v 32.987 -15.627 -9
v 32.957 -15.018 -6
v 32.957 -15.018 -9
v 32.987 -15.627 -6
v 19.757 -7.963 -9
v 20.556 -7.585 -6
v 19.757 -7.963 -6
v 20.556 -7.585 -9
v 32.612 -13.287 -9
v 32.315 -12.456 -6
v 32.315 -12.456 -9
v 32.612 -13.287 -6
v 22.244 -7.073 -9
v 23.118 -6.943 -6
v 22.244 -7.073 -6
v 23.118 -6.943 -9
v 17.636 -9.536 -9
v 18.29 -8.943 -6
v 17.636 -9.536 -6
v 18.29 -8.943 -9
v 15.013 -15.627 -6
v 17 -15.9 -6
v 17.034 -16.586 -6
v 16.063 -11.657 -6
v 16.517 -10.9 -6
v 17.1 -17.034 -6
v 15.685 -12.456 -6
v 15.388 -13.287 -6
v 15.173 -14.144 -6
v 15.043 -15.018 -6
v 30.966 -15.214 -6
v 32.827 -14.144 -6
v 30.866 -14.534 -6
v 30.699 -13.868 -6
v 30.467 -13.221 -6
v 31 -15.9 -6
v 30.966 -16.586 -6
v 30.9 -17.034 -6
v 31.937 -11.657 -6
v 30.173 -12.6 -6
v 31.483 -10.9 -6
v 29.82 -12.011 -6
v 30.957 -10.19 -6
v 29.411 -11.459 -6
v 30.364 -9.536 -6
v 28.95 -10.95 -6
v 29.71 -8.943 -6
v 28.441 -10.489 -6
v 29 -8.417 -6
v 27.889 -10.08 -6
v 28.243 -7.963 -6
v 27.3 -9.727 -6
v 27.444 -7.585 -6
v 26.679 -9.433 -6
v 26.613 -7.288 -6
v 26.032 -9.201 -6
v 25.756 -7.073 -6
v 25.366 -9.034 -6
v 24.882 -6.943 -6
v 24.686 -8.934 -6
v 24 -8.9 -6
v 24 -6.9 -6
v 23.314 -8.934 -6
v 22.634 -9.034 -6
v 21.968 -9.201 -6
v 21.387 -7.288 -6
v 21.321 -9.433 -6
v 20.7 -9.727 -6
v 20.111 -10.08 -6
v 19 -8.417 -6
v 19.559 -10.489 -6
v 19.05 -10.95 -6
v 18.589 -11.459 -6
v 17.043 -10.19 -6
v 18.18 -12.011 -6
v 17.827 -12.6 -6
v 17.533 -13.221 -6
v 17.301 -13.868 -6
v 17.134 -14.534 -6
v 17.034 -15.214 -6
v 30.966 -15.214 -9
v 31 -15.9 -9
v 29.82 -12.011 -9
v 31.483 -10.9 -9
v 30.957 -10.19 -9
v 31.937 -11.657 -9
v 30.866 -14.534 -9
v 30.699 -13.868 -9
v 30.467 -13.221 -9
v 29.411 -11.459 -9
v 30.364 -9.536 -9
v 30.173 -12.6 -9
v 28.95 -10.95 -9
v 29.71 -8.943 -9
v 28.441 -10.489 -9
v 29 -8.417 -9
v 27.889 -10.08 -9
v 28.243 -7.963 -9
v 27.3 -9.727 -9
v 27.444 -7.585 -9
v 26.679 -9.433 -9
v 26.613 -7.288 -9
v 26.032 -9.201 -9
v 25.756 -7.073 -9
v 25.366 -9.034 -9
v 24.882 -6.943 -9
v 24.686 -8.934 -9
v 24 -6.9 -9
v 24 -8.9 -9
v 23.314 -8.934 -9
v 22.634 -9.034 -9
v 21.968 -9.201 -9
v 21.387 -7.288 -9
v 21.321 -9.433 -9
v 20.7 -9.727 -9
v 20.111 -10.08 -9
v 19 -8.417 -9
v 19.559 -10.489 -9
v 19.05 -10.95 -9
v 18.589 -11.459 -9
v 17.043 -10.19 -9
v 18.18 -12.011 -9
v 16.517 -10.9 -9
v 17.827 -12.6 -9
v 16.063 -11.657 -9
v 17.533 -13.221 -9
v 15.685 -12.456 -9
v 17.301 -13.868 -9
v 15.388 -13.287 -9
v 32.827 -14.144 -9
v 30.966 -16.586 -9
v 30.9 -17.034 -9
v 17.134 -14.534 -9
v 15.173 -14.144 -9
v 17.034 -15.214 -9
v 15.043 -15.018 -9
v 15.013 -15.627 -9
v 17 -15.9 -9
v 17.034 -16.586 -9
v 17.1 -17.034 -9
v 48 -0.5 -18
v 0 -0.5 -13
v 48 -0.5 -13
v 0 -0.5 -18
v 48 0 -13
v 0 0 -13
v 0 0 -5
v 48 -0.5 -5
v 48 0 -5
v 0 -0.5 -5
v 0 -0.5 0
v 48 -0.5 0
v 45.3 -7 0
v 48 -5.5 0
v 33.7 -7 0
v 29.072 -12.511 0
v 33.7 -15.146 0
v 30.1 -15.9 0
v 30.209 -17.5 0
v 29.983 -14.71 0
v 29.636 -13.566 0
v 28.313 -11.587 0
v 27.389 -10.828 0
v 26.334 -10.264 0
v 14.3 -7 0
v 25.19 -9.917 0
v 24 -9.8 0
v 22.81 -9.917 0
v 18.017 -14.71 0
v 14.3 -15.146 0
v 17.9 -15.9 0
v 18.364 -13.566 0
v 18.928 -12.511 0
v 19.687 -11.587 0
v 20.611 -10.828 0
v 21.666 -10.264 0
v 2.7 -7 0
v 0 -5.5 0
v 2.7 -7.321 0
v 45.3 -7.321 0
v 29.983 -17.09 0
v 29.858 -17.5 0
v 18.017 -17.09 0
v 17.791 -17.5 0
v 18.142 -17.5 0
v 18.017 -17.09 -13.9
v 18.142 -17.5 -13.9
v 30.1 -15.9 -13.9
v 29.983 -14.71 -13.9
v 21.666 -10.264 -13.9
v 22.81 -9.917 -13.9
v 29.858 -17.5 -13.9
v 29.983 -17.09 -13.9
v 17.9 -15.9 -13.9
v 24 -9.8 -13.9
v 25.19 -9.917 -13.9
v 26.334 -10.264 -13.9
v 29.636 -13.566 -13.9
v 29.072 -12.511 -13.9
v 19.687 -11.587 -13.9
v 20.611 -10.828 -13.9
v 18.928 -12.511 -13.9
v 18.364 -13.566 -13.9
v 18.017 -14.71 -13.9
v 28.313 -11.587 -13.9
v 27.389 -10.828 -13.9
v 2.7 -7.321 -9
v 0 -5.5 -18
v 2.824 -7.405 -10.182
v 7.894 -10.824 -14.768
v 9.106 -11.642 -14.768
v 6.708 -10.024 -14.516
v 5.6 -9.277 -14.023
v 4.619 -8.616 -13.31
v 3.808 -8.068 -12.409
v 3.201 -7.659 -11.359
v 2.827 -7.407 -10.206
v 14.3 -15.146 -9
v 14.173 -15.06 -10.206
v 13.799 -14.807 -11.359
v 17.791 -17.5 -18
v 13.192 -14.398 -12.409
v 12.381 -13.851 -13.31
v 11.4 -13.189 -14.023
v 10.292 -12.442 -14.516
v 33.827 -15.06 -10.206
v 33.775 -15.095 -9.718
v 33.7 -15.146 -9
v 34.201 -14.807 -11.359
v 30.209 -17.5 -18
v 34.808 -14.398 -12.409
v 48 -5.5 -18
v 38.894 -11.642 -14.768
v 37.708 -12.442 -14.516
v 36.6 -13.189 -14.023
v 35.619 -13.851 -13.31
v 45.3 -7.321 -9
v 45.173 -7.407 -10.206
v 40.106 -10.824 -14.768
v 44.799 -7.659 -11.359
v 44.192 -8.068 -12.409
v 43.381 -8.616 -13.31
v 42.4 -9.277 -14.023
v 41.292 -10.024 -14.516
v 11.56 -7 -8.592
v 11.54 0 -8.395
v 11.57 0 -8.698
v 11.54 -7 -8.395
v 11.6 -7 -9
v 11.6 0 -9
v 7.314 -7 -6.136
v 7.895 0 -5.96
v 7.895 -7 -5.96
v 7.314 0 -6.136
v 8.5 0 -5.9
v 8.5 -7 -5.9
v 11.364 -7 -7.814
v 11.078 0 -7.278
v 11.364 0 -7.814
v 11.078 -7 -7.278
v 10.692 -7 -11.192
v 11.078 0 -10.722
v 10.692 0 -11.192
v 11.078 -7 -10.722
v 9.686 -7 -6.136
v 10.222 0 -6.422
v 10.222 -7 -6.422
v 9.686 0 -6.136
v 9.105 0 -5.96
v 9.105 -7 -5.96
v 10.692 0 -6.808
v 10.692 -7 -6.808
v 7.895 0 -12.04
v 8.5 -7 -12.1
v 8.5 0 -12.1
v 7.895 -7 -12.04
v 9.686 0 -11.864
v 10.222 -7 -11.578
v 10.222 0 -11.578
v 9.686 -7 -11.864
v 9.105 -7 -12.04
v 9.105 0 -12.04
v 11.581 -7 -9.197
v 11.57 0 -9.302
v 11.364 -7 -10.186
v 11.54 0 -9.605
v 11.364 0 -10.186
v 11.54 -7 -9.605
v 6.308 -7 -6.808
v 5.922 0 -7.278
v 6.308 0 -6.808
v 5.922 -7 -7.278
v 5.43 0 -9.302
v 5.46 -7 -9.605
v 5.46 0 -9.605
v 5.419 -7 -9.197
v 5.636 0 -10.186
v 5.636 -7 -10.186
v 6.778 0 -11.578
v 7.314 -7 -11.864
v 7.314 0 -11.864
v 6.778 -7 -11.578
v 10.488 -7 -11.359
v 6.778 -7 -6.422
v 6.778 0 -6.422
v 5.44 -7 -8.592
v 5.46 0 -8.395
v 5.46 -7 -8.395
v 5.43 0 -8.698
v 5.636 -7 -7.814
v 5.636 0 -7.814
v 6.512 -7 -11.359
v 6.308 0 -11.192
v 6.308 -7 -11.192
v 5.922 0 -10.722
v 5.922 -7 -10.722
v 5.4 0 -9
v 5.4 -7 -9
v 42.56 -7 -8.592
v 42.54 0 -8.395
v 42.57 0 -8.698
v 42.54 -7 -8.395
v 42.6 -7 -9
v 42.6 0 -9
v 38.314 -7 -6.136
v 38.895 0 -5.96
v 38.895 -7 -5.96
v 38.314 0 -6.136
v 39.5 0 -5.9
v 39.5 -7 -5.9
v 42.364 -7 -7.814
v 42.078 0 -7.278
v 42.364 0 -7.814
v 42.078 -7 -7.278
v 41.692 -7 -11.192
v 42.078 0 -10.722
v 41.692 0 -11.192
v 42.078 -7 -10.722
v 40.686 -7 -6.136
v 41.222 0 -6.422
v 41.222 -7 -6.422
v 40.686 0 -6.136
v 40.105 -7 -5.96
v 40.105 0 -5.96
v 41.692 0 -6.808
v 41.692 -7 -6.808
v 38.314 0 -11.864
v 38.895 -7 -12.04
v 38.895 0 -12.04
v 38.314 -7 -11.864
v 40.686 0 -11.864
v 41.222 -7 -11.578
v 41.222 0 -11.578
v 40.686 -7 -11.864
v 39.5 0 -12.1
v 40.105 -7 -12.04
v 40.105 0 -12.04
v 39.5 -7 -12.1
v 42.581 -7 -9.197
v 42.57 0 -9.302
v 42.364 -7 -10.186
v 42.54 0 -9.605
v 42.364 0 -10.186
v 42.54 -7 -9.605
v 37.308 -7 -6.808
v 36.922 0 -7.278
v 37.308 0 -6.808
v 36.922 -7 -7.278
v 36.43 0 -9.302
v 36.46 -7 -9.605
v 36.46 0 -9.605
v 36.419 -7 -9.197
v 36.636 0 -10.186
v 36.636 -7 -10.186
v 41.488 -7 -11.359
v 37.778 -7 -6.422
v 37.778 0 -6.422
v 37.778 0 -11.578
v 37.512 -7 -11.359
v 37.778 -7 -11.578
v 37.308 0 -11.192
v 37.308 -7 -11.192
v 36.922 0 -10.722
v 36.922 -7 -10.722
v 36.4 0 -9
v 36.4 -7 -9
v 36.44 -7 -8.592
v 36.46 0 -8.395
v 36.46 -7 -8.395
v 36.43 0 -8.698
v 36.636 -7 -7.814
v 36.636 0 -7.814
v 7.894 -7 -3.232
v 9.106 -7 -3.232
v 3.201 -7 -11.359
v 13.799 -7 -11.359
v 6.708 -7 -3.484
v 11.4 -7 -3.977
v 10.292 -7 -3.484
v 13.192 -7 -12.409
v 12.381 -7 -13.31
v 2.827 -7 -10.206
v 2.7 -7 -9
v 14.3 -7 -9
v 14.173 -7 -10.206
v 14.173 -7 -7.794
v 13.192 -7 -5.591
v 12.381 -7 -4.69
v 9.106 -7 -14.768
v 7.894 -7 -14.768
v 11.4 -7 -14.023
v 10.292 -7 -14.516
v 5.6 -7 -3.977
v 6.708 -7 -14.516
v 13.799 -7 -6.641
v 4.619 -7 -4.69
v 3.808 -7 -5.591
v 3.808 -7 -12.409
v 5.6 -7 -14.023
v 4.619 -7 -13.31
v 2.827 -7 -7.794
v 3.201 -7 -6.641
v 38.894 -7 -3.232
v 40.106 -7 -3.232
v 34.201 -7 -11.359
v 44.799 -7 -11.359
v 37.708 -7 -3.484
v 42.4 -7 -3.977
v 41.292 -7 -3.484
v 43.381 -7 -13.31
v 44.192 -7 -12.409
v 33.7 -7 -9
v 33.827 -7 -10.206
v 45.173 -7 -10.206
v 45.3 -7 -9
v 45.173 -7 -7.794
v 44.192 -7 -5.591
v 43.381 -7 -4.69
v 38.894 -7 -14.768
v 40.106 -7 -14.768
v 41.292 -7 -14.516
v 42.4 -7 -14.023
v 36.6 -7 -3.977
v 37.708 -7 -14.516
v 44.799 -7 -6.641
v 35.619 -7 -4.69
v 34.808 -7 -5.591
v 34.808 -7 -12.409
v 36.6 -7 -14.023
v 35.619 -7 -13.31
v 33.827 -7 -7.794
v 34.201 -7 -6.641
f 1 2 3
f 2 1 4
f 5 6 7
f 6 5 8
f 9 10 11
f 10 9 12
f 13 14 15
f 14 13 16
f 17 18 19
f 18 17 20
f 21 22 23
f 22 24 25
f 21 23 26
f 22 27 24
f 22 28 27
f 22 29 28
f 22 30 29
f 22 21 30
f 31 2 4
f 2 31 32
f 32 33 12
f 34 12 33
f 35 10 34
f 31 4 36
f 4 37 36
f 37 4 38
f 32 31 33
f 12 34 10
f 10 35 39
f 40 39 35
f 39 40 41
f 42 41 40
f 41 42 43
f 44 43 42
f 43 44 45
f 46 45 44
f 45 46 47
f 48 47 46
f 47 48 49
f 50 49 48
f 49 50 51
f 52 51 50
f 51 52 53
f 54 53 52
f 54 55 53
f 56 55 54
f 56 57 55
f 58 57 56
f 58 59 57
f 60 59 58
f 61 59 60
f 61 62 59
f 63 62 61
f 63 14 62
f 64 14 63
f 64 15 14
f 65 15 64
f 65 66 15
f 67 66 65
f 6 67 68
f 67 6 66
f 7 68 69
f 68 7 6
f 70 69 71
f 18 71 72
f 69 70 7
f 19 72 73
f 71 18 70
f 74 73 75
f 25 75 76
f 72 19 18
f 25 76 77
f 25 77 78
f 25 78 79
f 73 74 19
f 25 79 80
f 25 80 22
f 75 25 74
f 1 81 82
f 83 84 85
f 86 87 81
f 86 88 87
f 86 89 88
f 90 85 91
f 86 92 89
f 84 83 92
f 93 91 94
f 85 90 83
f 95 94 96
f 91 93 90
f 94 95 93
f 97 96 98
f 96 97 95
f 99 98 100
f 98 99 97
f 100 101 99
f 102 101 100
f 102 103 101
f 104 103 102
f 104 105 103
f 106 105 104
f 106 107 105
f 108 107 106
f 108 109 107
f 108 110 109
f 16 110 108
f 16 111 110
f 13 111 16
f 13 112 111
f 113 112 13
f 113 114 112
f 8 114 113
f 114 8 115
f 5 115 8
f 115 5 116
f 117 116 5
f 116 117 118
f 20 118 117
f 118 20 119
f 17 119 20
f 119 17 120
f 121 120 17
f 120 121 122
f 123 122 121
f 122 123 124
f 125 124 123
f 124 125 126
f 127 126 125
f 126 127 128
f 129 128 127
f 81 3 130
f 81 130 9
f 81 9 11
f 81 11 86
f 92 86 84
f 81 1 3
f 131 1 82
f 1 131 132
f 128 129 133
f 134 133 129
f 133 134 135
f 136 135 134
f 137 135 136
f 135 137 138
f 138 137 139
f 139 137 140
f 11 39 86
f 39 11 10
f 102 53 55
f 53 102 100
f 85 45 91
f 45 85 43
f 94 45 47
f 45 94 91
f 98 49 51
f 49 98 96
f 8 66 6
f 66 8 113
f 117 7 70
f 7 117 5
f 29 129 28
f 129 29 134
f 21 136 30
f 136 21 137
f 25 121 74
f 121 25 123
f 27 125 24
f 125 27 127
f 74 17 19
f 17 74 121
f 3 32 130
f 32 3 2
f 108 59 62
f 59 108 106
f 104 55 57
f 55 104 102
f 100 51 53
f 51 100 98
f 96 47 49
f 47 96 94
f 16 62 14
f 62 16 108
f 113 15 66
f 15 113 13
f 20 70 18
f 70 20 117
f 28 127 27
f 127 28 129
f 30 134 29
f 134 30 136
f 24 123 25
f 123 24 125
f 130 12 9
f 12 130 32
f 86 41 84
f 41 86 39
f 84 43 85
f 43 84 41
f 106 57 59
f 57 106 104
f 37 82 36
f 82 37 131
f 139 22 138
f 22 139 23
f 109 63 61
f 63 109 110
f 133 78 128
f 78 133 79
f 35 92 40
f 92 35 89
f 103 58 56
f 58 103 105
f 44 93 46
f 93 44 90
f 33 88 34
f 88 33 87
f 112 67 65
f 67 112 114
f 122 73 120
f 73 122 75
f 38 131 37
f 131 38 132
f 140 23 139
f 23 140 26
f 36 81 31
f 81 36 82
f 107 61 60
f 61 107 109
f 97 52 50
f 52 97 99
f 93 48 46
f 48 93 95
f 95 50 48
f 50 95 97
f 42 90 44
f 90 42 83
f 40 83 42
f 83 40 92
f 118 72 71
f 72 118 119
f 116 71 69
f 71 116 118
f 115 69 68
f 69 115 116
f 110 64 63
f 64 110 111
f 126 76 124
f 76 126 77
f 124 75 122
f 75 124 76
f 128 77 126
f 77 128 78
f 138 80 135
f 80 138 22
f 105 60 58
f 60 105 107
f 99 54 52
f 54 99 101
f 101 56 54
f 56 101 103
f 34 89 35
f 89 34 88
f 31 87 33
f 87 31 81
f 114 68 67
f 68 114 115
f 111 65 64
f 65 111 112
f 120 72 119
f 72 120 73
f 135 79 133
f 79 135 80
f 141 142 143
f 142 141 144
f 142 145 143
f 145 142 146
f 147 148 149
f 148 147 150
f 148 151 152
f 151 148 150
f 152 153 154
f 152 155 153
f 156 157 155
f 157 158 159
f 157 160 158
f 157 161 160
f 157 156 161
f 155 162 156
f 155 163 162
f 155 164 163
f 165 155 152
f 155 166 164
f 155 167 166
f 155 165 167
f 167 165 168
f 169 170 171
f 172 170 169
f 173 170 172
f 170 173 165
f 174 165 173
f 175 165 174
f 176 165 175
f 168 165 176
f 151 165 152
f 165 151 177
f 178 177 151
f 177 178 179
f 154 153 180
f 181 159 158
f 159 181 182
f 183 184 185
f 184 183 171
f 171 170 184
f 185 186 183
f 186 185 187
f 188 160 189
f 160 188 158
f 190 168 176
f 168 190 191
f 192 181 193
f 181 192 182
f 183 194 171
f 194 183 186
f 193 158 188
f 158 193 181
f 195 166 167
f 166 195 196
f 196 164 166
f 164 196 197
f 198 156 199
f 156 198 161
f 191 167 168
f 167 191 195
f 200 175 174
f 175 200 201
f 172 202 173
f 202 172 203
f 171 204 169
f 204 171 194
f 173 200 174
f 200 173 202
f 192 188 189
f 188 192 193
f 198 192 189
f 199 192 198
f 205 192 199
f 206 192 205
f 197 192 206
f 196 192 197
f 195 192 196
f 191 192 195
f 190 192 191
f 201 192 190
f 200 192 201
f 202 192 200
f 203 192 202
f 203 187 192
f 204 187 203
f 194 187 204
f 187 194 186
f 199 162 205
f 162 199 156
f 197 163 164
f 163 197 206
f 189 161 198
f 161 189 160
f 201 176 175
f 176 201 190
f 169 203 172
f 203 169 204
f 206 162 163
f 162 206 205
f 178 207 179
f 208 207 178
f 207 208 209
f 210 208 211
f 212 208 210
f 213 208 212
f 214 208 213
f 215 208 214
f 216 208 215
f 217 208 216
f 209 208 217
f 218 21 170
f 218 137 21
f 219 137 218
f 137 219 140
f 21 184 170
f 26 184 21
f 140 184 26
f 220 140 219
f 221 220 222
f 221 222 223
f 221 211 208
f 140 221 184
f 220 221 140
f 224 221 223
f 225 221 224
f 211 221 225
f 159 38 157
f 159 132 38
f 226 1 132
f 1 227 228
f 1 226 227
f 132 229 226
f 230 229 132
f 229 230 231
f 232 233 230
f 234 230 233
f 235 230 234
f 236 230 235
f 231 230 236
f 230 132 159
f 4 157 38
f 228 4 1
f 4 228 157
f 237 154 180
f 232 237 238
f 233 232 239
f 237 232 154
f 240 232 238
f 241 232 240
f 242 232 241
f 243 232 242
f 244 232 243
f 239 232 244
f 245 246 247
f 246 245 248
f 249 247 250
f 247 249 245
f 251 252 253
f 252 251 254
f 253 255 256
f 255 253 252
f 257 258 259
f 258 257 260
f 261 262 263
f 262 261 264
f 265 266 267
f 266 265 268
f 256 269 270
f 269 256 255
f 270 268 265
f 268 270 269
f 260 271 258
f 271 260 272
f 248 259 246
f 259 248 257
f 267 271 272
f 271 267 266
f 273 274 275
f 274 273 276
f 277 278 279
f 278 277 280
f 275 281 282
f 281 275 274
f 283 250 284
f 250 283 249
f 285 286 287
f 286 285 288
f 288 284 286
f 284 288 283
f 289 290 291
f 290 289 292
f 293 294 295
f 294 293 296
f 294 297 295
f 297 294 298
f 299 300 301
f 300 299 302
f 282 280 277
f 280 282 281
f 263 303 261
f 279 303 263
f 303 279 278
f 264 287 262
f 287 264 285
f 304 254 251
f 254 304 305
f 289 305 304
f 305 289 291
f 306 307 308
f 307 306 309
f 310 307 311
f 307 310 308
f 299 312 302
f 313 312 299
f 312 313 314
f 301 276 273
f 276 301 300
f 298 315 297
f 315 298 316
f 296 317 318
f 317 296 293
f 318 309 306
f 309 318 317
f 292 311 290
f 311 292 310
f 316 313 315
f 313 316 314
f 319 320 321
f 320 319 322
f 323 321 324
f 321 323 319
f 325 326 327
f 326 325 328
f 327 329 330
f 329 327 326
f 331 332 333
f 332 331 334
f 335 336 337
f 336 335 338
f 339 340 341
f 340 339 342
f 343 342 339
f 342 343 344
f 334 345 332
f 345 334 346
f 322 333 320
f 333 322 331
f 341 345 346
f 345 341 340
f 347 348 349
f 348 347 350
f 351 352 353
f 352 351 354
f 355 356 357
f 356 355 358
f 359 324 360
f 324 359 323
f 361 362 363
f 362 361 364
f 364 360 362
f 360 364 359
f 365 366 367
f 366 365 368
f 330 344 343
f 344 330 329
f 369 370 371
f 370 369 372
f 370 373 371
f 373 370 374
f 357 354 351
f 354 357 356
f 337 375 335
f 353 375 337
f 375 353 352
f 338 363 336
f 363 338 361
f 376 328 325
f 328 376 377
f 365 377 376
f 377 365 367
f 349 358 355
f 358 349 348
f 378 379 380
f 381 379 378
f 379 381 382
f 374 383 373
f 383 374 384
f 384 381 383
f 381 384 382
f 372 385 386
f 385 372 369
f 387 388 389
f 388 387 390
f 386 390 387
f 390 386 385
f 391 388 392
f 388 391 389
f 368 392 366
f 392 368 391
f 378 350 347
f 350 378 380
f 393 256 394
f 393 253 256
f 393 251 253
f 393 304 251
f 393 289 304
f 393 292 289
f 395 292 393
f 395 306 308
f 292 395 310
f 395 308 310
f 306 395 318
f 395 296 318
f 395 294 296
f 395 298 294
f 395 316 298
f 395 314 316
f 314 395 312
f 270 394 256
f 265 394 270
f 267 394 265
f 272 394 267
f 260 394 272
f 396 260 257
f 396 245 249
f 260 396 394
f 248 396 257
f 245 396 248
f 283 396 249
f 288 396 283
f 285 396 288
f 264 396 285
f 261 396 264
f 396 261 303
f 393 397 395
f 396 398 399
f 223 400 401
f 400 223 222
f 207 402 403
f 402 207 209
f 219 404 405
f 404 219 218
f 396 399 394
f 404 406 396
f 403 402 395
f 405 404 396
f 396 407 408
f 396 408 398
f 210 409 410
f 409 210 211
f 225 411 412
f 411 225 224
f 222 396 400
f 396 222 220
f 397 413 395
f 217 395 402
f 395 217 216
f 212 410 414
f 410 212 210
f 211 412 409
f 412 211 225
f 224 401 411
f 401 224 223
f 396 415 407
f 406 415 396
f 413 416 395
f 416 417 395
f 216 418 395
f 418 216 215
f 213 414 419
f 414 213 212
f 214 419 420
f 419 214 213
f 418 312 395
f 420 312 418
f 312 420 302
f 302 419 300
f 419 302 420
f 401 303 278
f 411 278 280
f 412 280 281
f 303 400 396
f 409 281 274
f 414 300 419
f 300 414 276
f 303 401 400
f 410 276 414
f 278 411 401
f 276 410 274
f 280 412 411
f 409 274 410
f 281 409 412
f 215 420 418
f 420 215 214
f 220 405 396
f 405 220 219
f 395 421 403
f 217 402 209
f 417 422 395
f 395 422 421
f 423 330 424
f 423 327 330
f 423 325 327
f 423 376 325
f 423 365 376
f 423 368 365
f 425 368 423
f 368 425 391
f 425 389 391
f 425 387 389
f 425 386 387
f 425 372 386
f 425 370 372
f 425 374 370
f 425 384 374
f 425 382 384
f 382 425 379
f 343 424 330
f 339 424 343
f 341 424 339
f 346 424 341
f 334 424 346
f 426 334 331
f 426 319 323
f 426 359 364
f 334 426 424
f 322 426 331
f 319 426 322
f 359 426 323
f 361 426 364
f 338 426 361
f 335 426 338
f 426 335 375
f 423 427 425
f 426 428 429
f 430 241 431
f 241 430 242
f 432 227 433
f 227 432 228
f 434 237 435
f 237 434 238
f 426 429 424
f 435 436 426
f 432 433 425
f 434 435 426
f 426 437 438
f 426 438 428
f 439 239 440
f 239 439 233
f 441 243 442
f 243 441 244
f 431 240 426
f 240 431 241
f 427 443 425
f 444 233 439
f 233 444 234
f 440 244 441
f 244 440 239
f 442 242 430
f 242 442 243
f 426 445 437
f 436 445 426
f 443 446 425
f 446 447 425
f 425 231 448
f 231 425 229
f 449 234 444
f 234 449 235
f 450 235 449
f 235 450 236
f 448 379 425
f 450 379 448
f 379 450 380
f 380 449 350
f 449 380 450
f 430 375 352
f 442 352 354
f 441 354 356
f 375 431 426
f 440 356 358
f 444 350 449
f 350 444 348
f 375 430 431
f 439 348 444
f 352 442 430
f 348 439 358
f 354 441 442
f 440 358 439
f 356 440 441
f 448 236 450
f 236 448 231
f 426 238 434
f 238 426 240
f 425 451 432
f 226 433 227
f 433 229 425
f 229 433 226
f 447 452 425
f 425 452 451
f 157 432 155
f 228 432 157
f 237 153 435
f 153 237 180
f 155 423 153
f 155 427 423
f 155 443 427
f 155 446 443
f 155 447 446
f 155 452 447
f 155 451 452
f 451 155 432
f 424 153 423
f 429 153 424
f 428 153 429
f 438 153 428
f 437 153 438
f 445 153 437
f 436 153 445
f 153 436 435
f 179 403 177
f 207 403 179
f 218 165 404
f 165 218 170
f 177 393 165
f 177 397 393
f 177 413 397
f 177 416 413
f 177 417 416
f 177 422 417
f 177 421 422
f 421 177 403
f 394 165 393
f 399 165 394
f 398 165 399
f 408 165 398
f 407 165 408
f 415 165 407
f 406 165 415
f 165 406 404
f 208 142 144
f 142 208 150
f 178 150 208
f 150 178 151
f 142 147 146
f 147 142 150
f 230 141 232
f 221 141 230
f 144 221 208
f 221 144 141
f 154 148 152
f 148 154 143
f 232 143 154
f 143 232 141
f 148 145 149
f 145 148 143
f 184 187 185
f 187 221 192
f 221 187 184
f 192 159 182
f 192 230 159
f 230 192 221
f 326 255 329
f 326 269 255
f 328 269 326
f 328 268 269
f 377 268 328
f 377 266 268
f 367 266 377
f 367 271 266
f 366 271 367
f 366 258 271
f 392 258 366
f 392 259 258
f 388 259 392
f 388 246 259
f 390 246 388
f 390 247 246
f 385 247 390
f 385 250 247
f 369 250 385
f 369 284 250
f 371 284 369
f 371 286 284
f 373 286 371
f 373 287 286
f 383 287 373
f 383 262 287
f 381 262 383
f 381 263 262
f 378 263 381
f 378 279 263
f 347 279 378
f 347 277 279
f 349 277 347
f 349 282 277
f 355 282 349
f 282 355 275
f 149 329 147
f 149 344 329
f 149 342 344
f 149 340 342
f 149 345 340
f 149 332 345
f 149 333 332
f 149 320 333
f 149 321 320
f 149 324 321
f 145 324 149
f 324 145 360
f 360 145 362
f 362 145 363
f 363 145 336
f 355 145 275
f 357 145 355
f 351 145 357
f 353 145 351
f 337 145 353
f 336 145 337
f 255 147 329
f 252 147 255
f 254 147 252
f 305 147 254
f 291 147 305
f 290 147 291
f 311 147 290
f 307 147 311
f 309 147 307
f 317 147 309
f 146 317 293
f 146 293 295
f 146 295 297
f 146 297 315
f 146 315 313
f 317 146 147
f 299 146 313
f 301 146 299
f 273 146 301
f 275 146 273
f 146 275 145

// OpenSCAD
// file: ../configuration.scad
/*
	Konfiguracni soubor 3D tiskarny RebeliX X2
	
	Sledujte nas na:		  
			www.RepRap4U.cz
			www.facebook.com/RebeliX.cz
			https://twitter.com/reprap4u
			https://plus.google.com/+Reprap4uCz-3Dtiskarna-RebeliX
*/

/*================ Slic3r nastaveni ==========================*/

// Vyska vrstvy pro tisknuti dilu [mm]
layer_height = 0.3;

// Sirka vytlacovaneho materialu [mm]
extrusion_width = 0.66; //Slic3r->Print Settings->Advanced->Default extrusion width

/*==================== M6 sroub ==============================*/

// Rezerva prumeru hlavy sroubu [mm]
space = 1;

// Prumer hlavy M6 sroubu (pricte se rezerva) [mm]
M6_head_diameter = 10.6+space;
//M6_head_diameter = 12+space;

// Vyska hlavy M6 sroubu (dulezite pro zapusteni hlavy sroubu do plastu) [mm]
M6_head_height = 3.6;
//M6_head_height = 4.5;

// Delka sroubu M6 [mm]
// M6x12
M6_lenght = 12;

/*=================== Nastaveni dilu =========================*/

// Posun Z zakladny
z_base_offset = 11;

// Tloustka rohovych spojek
// 5 mm => sroub M6x14 s podlozkou
// 3 mm => sroub M6x12 s podlozkou
coupler_thickness = 7;

// Prumer 8mm tyce
rod_8mm_d = 8.2;

// Posun drzacku mezi x-motor a x-end
x_holder_position = 6.5;

/*======================== Motory ============================*/

// Delka motoru (ovlivni dily a delky tyci pro osy Z a Y)
//SX17-1003LQFE (doporuceno hlavne na osu Z)
//motor_length = 29.5;
//SX17-1003 (doporuceno hlavne na osu Z), SX17-0503LQEF
motor_length = 34;
//SX17-1005
//motor_length = 40;
//SX17-0905 - zde je jiz problem s velkou vyskou motoru na ose Z - musi se upravit endstop-holder
//motor_length = 48;

/*================ Remeny a remenicky ========================*/

// GT2 
belt_tooth_distance = 2;
belt_tooth_ratio = 0.5;

// T2.5
//belt_tooth_distance = 2.5;
//belt_tooth_ratio = 0.68;
// main file
// RebeliX
//
// y-rod-holder
// GNU GPL v3
// Martin Neruda <neruda@reprap4u.cz>
// http://www.reprap4u.cz

include <../configuration.scad>

width = 48;
height = 18;
base_thickness = 7;
thickness = 17.5;
rod_diameter = 12;

module y_rod_holder_base(){
  cube([width,thickness,height]);
}

module y_cuts(){
  // Vyrez pro hlinikovy profil
  translate([width+0.1,0.5,(height/2)+4]) rotate([0,0,180]) cube([50,2,10]);
  translate([width+0.1,0.5,0]) rotate([0,0,180]) cube([50,2,(height/2)-4]);
  
  // Vyrez pro 8mm tyc
  translate([width/2,thickness - 1.6,-0.1]) cylinder(h=(height/2)+5,r=(rod_diameter/2)+0.1,$fn = 32);
  // Zkosene hrany
  translate([0,base_thickness-1.5,-0.1]) rotate([0,0,34]) cube([30,10,20]);
  translate([width,base_thickness-1.5,-0.1]) rotate([0,0,56]) cube([10,30,20]);
  // Otvory pro M6 srouby
  translate([8.5,0,height/2]) rotate([-90,0,0]) cylinder(h=40,r=3.1,$fn = 32,center=true);
  translate([width-8.5,0,height/2]) rotate([-90,0,0]) cylinder(h=40,r=3.1,$fn = 32,center=true);
  
  translate([8.5,base_thickness,height/2]) rotate([-90,0,0]) cylinder(r = M6_head_diameter/2, h = 20, $fn = 30);
  translate([width-8.5,base_thickness,height/2]) rotate([-90,0,0]) cylinder(r = M6_head_diameter/2, h = 20, $fn = 30);
 
  translate([width-8.5-M6_head_diameter/2,base_thickness,0]) cube([M6_head_diameter,10,height/2]);
  translate([8.5-M6_head_diameter/2,base_thickness,0]) cube([M6_head_diameter,10,height/2]);
  
  // Otvor pro zip pasku
  translate([width/2,thickness - 1.6,height/2 - 3]) difference(){
    cylinder(r=9,h=3,$fn=64);
    cylinder(r=7,h=3.1,$fn=64);
  }
}

rotate([180,0,0]) 
difference(){
	y_rod_holder_base();
	y_cuts();
}	
